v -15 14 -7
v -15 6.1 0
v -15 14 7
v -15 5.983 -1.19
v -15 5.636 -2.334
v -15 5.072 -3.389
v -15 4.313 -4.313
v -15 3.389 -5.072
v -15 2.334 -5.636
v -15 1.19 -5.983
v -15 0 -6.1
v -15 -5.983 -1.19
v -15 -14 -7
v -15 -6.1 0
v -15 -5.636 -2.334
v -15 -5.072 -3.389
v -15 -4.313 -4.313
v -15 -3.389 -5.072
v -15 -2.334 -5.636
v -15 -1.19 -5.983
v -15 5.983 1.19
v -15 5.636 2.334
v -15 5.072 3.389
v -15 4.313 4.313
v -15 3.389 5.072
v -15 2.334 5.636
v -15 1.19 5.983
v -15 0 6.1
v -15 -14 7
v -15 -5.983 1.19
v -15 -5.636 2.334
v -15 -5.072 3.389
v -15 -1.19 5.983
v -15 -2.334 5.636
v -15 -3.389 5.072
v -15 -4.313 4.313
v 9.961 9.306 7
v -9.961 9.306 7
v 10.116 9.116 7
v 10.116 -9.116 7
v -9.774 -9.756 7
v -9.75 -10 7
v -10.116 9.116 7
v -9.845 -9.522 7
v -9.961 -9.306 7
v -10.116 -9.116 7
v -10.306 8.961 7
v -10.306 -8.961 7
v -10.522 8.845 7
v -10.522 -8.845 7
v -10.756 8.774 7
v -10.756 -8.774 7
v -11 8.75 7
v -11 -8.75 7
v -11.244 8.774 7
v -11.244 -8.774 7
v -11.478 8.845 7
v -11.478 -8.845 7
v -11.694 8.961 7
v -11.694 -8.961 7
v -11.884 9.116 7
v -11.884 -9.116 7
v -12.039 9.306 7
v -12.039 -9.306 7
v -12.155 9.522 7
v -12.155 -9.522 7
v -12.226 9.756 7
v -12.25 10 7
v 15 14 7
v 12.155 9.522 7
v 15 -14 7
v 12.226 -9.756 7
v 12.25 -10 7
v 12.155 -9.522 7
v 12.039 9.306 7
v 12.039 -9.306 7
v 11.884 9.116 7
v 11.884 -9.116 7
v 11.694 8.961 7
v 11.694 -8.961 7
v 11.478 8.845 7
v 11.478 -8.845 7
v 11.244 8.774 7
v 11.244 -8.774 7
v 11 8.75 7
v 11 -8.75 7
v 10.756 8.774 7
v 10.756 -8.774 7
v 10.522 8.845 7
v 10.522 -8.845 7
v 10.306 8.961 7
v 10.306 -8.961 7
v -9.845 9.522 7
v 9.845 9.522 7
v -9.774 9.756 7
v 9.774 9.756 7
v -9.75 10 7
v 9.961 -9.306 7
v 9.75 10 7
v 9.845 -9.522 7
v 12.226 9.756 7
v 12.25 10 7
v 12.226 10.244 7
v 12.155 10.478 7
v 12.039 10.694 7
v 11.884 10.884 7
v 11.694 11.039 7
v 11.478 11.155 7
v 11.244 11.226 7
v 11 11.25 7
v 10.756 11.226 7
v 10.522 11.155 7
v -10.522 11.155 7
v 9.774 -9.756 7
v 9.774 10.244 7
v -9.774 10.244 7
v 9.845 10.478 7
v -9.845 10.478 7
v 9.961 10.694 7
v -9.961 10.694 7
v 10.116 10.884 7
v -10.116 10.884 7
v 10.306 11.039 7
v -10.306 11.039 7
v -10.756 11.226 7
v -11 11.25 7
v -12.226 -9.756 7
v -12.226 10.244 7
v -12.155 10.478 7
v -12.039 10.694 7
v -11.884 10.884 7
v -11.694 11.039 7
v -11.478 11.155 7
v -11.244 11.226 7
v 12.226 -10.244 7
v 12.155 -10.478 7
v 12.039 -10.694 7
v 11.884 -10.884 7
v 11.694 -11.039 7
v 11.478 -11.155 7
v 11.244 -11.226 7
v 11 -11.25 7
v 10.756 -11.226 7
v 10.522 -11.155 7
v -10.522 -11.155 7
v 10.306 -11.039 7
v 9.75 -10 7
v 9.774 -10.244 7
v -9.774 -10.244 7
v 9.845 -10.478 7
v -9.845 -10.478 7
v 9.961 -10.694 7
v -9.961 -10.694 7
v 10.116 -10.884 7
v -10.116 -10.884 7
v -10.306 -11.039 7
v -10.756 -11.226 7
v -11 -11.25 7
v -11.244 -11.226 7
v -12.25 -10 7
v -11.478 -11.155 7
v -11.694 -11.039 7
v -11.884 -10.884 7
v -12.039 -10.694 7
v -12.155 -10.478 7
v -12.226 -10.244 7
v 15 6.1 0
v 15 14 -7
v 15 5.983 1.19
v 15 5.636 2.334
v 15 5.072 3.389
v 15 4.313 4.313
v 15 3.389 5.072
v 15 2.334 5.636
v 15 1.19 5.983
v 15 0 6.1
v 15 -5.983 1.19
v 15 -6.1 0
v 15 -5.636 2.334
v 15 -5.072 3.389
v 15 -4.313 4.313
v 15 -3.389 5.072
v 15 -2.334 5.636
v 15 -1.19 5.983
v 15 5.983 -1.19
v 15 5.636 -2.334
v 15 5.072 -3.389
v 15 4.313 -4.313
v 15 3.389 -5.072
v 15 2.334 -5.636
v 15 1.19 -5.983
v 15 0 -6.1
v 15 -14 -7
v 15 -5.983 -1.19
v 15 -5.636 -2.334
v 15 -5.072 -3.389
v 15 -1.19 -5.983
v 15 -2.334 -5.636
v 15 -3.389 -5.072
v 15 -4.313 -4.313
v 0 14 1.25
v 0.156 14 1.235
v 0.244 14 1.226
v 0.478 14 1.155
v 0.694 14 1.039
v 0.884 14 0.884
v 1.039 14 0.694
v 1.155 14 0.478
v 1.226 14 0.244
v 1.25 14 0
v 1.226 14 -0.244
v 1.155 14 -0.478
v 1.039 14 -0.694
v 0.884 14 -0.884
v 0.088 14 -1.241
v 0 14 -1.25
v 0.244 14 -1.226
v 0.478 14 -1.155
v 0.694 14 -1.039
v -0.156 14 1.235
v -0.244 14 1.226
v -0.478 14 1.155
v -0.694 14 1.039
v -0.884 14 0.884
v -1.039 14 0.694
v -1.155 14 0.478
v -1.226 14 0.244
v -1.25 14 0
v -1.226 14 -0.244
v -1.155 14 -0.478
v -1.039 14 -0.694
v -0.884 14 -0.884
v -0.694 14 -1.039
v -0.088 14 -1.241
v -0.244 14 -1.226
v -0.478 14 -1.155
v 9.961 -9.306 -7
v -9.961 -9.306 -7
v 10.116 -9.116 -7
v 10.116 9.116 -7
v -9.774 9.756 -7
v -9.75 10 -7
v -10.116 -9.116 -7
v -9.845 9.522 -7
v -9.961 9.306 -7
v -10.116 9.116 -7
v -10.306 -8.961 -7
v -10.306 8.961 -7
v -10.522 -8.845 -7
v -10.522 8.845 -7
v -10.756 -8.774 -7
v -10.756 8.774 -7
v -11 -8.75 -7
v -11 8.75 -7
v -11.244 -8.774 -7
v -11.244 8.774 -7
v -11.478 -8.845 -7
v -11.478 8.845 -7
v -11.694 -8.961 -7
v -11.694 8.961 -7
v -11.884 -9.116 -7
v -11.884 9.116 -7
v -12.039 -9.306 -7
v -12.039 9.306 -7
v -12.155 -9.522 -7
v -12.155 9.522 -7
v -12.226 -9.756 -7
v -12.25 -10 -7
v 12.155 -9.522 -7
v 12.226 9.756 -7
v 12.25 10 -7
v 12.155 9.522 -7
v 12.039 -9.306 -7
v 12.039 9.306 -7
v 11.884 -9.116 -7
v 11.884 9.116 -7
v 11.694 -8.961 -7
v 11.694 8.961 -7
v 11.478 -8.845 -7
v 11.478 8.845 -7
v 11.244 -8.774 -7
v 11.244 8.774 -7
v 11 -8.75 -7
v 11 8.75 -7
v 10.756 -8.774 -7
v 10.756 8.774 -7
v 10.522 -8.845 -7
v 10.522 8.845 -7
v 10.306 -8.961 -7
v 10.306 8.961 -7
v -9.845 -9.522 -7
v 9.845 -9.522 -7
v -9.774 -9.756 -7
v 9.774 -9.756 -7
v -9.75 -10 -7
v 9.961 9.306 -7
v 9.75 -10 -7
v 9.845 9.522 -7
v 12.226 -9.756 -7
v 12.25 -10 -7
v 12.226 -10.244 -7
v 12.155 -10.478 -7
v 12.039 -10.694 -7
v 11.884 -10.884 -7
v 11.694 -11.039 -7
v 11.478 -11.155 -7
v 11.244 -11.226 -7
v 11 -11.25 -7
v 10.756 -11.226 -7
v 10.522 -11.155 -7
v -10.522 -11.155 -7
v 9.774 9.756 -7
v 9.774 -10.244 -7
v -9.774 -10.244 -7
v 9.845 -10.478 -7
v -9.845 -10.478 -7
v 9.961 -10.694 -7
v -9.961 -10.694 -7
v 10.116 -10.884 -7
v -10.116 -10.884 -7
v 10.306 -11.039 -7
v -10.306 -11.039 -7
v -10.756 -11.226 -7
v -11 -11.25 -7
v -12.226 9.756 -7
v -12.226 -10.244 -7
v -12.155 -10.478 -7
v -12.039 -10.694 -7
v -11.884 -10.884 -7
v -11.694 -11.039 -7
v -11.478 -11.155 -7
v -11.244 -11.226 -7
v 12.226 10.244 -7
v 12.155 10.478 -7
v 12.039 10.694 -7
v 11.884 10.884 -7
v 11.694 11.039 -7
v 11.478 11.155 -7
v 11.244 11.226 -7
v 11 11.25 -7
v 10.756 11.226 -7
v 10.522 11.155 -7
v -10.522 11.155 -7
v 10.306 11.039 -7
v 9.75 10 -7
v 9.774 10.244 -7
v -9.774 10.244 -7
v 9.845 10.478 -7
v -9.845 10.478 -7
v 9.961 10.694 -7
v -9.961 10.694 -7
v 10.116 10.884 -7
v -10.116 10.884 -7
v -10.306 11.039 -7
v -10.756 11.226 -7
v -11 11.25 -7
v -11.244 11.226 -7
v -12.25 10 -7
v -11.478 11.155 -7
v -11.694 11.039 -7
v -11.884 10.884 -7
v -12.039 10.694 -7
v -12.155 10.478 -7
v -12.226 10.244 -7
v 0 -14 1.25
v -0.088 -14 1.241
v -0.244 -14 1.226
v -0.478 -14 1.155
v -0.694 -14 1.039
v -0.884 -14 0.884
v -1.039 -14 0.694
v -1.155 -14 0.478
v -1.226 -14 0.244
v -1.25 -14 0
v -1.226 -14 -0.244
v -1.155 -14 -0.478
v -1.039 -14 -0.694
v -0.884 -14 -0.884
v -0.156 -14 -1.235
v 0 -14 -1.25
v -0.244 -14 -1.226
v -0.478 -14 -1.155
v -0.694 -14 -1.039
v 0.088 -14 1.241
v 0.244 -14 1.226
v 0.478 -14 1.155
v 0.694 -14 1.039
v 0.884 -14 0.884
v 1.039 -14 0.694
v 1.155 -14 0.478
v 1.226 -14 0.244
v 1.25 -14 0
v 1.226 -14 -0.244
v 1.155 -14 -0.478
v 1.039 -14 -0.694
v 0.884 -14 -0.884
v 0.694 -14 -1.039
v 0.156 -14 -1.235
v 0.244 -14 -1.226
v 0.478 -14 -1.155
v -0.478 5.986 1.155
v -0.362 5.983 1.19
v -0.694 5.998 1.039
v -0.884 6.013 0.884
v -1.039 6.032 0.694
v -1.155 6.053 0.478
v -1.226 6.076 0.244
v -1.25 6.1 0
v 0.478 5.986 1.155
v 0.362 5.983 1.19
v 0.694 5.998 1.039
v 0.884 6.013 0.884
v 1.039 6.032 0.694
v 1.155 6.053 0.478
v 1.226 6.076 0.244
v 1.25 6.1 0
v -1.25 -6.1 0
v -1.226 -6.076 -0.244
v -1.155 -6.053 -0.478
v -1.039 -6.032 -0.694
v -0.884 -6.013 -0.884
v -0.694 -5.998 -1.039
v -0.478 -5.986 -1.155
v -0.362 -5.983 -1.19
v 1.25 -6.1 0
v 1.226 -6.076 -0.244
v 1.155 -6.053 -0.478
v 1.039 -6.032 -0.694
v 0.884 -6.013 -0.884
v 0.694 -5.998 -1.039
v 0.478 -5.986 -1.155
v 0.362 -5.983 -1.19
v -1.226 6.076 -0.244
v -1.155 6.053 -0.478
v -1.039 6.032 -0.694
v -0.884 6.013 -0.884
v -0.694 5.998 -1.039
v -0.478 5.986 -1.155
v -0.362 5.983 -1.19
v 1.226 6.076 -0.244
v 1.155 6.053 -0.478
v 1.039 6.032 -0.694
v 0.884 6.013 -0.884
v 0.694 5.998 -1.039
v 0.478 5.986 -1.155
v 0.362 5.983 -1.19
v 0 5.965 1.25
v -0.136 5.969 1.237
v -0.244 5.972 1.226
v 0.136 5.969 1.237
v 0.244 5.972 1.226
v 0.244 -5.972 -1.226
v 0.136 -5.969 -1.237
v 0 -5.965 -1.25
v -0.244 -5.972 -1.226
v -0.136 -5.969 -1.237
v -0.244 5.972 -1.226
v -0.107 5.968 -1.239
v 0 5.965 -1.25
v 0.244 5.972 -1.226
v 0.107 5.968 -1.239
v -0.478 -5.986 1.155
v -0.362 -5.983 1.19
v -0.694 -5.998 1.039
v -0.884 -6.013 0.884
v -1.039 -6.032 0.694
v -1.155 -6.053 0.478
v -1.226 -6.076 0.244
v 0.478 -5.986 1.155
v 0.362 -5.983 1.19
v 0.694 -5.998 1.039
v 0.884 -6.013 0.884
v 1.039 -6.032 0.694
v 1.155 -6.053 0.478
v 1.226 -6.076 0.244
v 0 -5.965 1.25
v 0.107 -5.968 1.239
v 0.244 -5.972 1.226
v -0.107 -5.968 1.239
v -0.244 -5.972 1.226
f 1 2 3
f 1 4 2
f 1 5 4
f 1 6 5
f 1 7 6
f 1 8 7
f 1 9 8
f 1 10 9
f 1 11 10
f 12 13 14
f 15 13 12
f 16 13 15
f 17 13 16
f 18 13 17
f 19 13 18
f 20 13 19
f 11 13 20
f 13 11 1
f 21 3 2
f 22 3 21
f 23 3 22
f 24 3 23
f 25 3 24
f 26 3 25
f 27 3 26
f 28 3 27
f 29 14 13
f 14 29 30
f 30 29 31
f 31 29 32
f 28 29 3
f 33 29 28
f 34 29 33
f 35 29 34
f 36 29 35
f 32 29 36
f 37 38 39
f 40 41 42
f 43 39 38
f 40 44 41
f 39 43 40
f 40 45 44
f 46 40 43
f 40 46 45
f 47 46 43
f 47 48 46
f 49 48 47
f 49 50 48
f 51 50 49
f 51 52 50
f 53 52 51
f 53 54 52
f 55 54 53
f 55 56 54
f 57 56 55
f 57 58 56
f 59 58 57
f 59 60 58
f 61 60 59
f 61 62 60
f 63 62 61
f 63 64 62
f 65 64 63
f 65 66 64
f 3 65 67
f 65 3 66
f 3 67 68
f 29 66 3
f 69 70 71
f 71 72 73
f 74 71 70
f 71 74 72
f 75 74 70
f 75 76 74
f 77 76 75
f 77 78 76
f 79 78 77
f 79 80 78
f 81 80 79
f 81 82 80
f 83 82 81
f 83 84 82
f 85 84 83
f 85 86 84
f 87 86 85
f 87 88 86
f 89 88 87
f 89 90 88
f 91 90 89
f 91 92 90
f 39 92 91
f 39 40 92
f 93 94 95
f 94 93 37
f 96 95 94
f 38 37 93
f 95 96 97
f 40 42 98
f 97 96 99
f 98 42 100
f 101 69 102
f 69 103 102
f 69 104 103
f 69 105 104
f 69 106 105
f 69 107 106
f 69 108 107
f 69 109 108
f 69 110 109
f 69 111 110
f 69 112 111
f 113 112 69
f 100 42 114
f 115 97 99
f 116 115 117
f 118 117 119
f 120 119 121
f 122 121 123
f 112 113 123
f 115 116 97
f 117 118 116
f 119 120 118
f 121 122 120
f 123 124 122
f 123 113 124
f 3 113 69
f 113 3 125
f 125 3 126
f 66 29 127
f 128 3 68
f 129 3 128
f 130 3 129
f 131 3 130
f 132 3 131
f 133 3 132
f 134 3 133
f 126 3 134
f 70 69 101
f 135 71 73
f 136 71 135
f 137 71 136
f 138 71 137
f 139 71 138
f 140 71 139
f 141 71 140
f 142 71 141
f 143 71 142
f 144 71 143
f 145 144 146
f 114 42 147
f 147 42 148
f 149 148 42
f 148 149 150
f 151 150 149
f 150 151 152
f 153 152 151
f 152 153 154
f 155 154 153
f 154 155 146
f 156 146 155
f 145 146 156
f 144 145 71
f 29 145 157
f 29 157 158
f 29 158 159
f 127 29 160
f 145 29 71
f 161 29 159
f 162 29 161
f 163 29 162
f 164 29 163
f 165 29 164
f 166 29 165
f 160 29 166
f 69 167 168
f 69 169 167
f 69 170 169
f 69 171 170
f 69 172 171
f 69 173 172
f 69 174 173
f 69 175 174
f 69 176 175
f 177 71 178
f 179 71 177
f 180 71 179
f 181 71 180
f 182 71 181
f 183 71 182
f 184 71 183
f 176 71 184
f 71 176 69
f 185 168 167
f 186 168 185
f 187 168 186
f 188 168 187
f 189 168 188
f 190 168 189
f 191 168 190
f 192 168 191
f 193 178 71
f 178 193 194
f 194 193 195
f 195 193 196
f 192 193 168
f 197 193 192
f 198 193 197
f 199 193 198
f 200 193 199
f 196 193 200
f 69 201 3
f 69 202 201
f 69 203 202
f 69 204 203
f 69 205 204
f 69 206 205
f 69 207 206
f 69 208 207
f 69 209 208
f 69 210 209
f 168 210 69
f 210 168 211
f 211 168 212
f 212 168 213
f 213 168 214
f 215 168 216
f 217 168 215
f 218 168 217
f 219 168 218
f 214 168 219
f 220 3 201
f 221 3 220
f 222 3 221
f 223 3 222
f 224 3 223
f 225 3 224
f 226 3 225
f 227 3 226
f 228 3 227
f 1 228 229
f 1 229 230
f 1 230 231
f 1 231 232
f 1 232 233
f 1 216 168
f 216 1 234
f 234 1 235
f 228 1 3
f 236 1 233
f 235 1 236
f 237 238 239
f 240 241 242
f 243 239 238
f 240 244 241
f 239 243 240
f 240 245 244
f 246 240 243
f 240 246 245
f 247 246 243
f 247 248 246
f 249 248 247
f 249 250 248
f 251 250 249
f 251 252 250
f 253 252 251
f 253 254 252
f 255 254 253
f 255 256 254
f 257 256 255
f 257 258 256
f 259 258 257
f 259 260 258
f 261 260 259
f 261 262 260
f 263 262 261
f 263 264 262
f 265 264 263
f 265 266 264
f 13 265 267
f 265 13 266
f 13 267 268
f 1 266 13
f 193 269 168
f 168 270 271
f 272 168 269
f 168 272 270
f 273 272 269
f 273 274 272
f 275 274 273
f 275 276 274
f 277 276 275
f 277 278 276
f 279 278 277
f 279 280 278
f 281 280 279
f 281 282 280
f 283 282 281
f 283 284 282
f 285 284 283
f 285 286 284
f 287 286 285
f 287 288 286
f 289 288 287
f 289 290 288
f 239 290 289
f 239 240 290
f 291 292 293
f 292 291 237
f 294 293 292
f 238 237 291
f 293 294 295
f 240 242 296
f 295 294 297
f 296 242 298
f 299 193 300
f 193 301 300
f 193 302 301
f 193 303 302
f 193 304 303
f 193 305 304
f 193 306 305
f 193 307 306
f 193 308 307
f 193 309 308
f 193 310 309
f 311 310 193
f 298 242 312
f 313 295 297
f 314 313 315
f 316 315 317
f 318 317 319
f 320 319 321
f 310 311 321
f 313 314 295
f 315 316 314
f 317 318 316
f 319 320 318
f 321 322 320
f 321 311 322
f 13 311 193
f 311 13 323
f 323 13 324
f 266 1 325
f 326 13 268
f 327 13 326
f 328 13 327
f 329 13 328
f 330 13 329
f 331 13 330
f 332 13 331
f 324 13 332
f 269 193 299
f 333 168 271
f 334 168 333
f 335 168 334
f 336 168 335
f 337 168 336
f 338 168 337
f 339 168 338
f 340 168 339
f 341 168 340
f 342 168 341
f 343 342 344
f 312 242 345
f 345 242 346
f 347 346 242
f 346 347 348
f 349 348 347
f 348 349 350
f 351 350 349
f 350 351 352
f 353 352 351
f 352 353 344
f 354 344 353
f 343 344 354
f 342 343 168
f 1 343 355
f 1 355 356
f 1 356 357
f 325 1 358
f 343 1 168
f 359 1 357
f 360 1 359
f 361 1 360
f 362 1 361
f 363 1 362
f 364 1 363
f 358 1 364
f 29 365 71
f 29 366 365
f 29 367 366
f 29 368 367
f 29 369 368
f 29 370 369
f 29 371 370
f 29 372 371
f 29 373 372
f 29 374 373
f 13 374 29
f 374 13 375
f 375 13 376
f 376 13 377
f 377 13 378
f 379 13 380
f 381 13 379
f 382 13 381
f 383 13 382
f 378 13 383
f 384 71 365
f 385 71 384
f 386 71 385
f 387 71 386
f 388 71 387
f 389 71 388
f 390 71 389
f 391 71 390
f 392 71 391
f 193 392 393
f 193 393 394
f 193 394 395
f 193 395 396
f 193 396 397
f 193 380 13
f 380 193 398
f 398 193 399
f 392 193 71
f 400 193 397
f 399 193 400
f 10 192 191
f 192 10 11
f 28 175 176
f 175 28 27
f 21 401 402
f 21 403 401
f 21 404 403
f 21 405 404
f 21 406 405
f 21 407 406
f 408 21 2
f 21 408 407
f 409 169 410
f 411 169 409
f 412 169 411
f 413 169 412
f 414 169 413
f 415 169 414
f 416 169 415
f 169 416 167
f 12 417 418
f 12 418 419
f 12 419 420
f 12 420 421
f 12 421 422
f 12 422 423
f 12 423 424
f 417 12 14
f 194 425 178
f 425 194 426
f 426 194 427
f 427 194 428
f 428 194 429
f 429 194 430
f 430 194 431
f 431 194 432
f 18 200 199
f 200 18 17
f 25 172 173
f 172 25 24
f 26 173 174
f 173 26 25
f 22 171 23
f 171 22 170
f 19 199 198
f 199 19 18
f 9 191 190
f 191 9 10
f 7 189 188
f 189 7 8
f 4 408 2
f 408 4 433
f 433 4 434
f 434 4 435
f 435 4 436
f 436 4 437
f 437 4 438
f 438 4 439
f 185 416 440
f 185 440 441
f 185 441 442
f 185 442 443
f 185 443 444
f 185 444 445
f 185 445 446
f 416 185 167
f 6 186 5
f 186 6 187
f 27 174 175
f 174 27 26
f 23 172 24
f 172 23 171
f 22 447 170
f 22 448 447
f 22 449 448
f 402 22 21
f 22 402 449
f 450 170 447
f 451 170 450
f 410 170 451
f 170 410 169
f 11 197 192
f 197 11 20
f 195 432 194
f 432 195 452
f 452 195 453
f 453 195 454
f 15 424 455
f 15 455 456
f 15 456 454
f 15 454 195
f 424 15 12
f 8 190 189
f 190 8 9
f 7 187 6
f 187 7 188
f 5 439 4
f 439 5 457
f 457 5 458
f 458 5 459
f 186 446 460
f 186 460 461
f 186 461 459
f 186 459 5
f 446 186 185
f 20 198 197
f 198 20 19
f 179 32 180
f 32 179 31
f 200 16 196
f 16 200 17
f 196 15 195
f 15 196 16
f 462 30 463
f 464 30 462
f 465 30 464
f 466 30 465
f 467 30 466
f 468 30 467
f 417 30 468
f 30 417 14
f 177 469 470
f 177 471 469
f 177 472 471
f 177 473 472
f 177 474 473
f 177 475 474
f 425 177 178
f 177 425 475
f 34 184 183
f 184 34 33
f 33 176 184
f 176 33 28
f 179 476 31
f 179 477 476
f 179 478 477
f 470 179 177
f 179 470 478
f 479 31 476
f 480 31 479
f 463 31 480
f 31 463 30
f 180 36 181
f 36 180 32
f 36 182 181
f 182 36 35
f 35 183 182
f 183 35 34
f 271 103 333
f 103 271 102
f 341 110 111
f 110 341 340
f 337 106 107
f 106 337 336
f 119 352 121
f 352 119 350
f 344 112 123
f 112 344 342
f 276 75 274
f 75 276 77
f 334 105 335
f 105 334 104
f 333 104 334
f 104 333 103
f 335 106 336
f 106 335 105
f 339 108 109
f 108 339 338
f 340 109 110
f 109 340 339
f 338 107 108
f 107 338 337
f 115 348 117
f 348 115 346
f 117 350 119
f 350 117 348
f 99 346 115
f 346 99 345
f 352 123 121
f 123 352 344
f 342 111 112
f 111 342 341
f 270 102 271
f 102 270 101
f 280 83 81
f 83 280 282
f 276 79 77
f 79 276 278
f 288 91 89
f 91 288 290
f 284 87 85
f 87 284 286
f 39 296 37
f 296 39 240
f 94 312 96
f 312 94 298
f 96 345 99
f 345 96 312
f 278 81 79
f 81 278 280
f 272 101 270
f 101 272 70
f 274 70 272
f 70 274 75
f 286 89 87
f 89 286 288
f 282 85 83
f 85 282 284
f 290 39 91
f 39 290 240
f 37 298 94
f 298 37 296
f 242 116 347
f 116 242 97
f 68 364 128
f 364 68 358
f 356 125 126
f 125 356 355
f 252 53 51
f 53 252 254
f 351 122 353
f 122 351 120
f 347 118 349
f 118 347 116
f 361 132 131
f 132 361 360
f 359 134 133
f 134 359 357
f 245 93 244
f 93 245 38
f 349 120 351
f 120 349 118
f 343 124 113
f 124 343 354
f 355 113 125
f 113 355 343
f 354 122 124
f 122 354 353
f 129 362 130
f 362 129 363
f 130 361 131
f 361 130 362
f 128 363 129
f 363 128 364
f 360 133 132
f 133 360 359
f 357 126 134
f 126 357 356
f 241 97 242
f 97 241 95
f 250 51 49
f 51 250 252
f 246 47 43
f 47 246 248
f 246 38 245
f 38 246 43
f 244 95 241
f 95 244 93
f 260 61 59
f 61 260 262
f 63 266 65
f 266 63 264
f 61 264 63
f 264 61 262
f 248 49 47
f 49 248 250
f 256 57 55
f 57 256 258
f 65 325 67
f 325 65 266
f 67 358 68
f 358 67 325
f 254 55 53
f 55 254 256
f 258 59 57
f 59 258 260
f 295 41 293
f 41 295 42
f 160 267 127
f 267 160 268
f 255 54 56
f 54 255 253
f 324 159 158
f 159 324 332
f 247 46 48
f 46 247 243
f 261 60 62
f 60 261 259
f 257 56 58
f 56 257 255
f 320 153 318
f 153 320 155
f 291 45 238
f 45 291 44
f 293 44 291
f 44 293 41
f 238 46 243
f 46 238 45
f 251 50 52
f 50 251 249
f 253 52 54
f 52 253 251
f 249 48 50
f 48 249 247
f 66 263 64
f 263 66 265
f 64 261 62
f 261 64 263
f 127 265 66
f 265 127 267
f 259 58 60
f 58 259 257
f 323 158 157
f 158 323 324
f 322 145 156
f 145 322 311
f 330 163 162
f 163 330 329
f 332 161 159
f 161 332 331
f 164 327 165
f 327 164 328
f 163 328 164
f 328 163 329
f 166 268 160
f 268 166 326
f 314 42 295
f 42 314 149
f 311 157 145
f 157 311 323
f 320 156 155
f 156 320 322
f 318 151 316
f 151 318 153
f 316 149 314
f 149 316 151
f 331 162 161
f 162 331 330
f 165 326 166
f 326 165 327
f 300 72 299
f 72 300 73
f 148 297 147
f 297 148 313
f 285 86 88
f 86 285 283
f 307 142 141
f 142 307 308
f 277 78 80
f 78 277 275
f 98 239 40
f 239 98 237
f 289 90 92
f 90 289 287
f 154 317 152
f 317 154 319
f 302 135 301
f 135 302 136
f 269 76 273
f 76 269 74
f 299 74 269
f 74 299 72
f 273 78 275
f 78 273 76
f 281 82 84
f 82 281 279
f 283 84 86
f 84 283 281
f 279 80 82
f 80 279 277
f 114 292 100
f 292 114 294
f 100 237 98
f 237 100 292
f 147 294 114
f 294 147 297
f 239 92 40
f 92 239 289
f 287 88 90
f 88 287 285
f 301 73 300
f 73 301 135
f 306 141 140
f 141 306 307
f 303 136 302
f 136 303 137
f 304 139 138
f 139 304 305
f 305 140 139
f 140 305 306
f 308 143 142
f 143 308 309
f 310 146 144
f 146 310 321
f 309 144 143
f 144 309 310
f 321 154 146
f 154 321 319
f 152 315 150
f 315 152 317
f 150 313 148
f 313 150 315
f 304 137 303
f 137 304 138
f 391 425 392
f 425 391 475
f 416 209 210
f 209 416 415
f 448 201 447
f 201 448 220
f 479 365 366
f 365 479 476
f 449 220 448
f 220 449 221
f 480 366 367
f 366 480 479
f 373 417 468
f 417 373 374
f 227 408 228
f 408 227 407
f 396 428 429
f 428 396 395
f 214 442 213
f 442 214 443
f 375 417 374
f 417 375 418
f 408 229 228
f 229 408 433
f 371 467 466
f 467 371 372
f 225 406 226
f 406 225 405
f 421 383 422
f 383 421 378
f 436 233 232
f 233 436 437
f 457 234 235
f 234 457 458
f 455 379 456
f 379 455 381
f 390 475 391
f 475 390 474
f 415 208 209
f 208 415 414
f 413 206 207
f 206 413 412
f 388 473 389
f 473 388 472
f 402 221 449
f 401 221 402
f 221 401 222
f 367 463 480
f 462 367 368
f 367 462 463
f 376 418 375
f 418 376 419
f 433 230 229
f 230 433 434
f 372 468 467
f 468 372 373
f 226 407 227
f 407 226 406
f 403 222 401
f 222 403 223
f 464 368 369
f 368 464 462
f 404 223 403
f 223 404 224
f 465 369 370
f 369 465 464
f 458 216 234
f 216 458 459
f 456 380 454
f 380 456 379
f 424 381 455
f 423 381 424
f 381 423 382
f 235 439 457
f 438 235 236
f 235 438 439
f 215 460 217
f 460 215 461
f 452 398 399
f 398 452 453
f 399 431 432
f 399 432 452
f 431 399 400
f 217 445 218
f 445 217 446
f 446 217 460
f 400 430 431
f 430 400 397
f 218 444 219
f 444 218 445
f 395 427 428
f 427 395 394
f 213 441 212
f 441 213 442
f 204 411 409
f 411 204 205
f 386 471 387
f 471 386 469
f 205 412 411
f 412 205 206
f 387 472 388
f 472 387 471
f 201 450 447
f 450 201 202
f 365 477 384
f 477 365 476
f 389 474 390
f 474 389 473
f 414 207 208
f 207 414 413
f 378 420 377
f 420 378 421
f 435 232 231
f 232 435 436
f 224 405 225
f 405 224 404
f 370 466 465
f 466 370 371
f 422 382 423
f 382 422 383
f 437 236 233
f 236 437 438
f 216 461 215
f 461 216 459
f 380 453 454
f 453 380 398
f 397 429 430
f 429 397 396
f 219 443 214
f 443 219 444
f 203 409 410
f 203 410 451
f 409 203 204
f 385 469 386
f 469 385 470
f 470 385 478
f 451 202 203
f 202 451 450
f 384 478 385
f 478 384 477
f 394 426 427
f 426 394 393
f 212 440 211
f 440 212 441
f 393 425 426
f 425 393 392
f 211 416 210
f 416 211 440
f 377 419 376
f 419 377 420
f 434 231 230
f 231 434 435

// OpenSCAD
hole_x = 11;
hole_y = 12 / 2 + 2.5 + 3 / 2;

module laser_support_base() {
  $fn = 32;
  difference() {
    cube([30, 40, 4], center = true);

    translate([0, 0, 6 / 2 - 1])    
    cube([10 + 0.2, 40 + 2, 6], center = true);

    translate([0, 0, -14/2])    
    cube([30, 28, 14], center = true);
      
    translate([hole_x, hole_y, 0])    
    cylinder(d = 2.5, h = 100, center = true);
    
    translate([-hole_x, hole_y, 0])    
    cylinder(d = 2.5, h = 100, center = true);

    translate([-hole_x, -hole_y, 0])    
    cylinder(d = 2.5, h = 100, center = true);

    translate([hole_x, -hole_y, 0])    
    cylinder(d = 2.5, h = 100, center = true);
    
  }  
  
}


module laser_support_top() {
  $fn = 32;
  hole_d = 2.5;
  difference() {
    cube([30, 28, 14], center = true);

    //translate([10, 15, 0])   
    rotate([0, 90, 0])
    cylinder(d = 12 + 0.2, h = 100, center = true);

    translate([hole_x, hole_y, 0])    
    cylinder(d = hole_d, h = 100, center = true);
    
    translate([-hole_x, hole_y, 0])    
    cylinder(d = hole_d, h = 100, center = true);

    translate([-hole_x, -hole_y, 0])    
    cylinder(d = hole_d, h = 100, center = true);

    translate([hole_x, -hole_y, 0])    
    cylinder(d = hole_d, h = 100, center = true);
    
    rotate([90, 0, 0])
    cylinder(d = hole_d, h = 100, center = true);
    
  }  
  
}


module laser_support_simple() {
  $fn = 32;
  difference() {
    cube([20, 28, 14], center = true);

    // Nut Space
    //translate([0, -20, 11])   
    //cube([20 + 1, 28, 14], center = true);

    //translate([0, 20, 11])   
    //cube([20 + 1, 28, 14], center = true);
    
    // Nut Space 1
    translate([0, -hole_y, 3])    
    cylinder(d = 8.5, h = 100, center = false);
    
    translate([0, -hole_y - 8.5/2, 5 + 3])    
    cube([8.5, 8.5, 10], center = true);

    // Nut Space 2
    translate([0, hole_y, 3])    
    cylinder(d = 8.5, h = 100, center = false);
    
    translate([0, hole_y + 8.5/2, 5 + 3])    
    cube([8.5, 8.5, 10], center = true);


    // Laser Hole
    rotate([0, 90, 0])
    cylinder(d = 12 + 0.2, h = 100, center = true);

    // Screw hole 1
    translate([0, hole_y, 0])    
    cylinder(d = 3.2, h = 100, center = true);
    
    // Screw hole 2
    translate([0, -hole_y, 0])    
    cylinder(d = 3.2, h = 100, center = true);


    // LAser grip hole
    translate([6, 0, 0])    
    rotate([90, 0, 0])
    cylinder(d = 2.5, h = 100, center = true);
    
  }  
  //translate([0, -hole_y, 5])    
  //cylinder(d = 6.2, h = 2.5, center = true);
  
}

laser_support_top();
//translate([0, 0, 20])
//laser_support_base();

//laser_support_simple();
